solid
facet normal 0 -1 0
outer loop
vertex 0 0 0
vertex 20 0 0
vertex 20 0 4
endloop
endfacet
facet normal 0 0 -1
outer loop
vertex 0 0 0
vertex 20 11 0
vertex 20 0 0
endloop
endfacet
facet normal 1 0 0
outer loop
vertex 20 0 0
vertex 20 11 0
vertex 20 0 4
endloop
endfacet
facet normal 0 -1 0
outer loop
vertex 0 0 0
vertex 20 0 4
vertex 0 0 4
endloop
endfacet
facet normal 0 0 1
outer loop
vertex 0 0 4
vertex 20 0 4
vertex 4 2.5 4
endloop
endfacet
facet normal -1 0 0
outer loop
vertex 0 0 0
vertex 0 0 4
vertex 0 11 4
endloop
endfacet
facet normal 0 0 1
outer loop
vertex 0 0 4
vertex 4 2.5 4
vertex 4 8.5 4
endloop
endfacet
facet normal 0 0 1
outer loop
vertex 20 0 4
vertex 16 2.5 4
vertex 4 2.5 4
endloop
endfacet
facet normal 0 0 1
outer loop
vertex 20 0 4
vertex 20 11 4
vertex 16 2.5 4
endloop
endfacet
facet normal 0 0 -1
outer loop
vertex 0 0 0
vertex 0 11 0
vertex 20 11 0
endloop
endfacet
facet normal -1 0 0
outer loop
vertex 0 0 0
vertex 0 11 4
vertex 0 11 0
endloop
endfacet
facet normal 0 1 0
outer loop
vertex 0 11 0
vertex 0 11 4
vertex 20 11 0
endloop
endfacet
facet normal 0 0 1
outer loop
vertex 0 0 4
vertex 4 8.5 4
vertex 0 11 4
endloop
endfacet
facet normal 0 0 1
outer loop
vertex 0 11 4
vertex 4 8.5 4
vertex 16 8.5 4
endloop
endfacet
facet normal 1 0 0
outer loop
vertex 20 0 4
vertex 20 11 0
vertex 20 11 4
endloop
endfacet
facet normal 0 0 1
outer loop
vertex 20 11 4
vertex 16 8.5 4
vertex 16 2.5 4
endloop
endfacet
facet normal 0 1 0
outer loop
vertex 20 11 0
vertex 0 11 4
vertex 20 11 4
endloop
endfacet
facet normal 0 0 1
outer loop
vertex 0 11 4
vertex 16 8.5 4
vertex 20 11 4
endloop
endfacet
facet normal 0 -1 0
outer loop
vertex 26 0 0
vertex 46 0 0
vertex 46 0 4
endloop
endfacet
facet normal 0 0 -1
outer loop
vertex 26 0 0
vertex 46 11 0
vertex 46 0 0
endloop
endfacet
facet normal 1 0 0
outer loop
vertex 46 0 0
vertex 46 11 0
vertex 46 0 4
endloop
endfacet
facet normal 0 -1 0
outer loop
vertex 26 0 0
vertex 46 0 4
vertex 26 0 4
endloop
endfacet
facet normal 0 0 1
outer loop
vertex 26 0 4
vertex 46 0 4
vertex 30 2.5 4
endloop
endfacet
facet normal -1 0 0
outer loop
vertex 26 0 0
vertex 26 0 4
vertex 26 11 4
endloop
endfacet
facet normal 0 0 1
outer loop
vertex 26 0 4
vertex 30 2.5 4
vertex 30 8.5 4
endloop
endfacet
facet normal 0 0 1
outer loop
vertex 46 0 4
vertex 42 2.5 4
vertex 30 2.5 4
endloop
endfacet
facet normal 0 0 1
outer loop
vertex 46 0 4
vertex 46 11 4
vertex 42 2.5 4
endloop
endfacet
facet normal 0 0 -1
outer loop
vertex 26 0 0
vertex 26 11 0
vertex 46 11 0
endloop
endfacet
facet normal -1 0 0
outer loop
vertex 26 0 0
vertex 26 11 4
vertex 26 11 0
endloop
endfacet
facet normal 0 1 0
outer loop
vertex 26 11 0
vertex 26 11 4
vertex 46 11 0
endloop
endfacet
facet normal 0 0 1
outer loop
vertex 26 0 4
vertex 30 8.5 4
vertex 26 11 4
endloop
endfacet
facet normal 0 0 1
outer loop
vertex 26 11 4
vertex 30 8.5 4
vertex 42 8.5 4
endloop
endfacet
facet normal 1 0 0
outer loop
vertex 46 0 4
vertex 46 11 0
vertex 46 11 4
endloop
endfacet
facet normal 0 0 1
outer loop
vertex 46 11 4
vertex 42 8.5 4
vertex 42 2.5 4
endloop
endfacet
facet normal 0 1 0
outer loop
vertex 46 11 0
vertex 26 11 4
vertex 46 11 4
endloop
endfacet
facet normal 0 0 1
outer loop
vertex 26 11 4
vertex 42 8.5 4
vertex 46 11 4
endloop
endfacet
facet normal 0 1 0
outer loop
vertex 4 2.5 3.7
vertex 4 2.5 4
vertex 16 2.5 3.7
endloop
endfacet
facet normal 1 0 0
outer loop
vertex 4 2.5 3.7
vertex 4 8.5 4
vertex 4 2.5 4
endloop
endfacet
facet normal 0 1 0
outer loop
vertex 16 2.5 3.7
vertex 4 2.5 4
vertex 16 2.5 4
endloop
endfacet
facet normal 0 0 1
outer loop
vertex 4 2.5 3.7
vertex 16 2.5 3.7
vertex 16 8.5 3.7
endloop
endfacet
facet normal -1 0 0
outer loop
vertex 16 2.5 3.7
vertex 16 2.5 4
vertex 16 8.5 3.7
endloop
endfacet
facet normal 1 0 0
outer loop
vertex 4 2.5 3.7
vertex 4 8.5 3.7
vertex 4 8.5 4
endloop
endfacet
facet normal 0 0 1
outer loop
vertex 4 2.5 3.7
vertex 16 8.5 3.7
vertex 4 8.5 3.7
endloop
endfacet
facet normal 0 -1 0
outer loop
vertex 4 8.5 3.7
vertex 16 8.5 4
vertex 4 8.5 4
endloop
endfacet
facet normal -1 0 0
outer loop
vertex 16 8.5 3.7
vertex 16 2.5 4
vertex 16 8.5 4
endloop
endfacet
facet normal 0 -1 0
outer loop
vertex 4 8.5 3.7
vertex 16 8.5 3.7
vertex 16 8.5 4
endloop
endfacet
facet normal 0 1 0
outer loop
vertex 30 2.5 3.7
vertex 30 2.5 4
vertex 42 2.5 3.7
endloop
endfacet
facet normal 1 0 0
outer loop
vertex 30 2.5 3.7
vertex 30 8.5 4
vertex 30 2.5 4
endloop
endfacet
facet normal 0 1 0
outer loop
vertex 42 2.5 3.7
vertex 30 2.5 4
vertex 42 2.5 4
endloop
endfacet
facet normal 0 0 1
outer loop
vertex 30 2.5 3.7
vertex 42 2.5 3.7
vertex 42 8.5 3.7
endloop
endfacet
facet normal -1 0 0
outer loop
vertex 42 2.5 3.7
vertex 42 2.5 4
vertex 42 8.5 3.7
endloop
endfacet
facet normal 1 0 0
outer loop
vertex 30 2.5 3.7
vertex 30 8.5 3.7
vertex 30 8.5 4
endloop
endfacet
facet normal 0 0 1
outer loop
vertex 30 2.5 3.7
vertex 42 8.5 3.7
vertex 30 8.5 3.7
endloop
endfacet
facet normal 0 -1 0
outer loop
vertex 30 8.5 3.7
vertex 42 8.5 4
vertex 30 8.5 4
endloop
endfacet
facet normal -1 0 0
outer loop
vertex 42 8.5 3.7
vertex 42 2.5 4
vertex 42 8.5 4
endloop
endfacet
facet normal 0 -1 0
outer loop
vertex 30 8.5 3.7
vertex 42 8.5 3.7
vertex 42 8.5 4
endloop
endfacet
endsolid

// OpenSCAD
// Toccata stage-0 C01c - 패드 받침판 (2개: 후보 재료마다 1개) (generated by make_stage0.py; print orientation, z = build direction)
$fn = 64;
difference(){
union(){
translate([0.0000,0.0000,0.0000]) cube([20.0000,11.0000,4.0000]);
translate([26.0000,0.0000,0.0000]) cube([20.0000,11.0000,4.0000]);
}
translate([4.0000,2.5000,3.7000]) cube([12.0000,6.0000,1.3000]);
translate([30.0000,2.5000,3.7000]) cube([12.0000,6.0000,1.3000]);
}
